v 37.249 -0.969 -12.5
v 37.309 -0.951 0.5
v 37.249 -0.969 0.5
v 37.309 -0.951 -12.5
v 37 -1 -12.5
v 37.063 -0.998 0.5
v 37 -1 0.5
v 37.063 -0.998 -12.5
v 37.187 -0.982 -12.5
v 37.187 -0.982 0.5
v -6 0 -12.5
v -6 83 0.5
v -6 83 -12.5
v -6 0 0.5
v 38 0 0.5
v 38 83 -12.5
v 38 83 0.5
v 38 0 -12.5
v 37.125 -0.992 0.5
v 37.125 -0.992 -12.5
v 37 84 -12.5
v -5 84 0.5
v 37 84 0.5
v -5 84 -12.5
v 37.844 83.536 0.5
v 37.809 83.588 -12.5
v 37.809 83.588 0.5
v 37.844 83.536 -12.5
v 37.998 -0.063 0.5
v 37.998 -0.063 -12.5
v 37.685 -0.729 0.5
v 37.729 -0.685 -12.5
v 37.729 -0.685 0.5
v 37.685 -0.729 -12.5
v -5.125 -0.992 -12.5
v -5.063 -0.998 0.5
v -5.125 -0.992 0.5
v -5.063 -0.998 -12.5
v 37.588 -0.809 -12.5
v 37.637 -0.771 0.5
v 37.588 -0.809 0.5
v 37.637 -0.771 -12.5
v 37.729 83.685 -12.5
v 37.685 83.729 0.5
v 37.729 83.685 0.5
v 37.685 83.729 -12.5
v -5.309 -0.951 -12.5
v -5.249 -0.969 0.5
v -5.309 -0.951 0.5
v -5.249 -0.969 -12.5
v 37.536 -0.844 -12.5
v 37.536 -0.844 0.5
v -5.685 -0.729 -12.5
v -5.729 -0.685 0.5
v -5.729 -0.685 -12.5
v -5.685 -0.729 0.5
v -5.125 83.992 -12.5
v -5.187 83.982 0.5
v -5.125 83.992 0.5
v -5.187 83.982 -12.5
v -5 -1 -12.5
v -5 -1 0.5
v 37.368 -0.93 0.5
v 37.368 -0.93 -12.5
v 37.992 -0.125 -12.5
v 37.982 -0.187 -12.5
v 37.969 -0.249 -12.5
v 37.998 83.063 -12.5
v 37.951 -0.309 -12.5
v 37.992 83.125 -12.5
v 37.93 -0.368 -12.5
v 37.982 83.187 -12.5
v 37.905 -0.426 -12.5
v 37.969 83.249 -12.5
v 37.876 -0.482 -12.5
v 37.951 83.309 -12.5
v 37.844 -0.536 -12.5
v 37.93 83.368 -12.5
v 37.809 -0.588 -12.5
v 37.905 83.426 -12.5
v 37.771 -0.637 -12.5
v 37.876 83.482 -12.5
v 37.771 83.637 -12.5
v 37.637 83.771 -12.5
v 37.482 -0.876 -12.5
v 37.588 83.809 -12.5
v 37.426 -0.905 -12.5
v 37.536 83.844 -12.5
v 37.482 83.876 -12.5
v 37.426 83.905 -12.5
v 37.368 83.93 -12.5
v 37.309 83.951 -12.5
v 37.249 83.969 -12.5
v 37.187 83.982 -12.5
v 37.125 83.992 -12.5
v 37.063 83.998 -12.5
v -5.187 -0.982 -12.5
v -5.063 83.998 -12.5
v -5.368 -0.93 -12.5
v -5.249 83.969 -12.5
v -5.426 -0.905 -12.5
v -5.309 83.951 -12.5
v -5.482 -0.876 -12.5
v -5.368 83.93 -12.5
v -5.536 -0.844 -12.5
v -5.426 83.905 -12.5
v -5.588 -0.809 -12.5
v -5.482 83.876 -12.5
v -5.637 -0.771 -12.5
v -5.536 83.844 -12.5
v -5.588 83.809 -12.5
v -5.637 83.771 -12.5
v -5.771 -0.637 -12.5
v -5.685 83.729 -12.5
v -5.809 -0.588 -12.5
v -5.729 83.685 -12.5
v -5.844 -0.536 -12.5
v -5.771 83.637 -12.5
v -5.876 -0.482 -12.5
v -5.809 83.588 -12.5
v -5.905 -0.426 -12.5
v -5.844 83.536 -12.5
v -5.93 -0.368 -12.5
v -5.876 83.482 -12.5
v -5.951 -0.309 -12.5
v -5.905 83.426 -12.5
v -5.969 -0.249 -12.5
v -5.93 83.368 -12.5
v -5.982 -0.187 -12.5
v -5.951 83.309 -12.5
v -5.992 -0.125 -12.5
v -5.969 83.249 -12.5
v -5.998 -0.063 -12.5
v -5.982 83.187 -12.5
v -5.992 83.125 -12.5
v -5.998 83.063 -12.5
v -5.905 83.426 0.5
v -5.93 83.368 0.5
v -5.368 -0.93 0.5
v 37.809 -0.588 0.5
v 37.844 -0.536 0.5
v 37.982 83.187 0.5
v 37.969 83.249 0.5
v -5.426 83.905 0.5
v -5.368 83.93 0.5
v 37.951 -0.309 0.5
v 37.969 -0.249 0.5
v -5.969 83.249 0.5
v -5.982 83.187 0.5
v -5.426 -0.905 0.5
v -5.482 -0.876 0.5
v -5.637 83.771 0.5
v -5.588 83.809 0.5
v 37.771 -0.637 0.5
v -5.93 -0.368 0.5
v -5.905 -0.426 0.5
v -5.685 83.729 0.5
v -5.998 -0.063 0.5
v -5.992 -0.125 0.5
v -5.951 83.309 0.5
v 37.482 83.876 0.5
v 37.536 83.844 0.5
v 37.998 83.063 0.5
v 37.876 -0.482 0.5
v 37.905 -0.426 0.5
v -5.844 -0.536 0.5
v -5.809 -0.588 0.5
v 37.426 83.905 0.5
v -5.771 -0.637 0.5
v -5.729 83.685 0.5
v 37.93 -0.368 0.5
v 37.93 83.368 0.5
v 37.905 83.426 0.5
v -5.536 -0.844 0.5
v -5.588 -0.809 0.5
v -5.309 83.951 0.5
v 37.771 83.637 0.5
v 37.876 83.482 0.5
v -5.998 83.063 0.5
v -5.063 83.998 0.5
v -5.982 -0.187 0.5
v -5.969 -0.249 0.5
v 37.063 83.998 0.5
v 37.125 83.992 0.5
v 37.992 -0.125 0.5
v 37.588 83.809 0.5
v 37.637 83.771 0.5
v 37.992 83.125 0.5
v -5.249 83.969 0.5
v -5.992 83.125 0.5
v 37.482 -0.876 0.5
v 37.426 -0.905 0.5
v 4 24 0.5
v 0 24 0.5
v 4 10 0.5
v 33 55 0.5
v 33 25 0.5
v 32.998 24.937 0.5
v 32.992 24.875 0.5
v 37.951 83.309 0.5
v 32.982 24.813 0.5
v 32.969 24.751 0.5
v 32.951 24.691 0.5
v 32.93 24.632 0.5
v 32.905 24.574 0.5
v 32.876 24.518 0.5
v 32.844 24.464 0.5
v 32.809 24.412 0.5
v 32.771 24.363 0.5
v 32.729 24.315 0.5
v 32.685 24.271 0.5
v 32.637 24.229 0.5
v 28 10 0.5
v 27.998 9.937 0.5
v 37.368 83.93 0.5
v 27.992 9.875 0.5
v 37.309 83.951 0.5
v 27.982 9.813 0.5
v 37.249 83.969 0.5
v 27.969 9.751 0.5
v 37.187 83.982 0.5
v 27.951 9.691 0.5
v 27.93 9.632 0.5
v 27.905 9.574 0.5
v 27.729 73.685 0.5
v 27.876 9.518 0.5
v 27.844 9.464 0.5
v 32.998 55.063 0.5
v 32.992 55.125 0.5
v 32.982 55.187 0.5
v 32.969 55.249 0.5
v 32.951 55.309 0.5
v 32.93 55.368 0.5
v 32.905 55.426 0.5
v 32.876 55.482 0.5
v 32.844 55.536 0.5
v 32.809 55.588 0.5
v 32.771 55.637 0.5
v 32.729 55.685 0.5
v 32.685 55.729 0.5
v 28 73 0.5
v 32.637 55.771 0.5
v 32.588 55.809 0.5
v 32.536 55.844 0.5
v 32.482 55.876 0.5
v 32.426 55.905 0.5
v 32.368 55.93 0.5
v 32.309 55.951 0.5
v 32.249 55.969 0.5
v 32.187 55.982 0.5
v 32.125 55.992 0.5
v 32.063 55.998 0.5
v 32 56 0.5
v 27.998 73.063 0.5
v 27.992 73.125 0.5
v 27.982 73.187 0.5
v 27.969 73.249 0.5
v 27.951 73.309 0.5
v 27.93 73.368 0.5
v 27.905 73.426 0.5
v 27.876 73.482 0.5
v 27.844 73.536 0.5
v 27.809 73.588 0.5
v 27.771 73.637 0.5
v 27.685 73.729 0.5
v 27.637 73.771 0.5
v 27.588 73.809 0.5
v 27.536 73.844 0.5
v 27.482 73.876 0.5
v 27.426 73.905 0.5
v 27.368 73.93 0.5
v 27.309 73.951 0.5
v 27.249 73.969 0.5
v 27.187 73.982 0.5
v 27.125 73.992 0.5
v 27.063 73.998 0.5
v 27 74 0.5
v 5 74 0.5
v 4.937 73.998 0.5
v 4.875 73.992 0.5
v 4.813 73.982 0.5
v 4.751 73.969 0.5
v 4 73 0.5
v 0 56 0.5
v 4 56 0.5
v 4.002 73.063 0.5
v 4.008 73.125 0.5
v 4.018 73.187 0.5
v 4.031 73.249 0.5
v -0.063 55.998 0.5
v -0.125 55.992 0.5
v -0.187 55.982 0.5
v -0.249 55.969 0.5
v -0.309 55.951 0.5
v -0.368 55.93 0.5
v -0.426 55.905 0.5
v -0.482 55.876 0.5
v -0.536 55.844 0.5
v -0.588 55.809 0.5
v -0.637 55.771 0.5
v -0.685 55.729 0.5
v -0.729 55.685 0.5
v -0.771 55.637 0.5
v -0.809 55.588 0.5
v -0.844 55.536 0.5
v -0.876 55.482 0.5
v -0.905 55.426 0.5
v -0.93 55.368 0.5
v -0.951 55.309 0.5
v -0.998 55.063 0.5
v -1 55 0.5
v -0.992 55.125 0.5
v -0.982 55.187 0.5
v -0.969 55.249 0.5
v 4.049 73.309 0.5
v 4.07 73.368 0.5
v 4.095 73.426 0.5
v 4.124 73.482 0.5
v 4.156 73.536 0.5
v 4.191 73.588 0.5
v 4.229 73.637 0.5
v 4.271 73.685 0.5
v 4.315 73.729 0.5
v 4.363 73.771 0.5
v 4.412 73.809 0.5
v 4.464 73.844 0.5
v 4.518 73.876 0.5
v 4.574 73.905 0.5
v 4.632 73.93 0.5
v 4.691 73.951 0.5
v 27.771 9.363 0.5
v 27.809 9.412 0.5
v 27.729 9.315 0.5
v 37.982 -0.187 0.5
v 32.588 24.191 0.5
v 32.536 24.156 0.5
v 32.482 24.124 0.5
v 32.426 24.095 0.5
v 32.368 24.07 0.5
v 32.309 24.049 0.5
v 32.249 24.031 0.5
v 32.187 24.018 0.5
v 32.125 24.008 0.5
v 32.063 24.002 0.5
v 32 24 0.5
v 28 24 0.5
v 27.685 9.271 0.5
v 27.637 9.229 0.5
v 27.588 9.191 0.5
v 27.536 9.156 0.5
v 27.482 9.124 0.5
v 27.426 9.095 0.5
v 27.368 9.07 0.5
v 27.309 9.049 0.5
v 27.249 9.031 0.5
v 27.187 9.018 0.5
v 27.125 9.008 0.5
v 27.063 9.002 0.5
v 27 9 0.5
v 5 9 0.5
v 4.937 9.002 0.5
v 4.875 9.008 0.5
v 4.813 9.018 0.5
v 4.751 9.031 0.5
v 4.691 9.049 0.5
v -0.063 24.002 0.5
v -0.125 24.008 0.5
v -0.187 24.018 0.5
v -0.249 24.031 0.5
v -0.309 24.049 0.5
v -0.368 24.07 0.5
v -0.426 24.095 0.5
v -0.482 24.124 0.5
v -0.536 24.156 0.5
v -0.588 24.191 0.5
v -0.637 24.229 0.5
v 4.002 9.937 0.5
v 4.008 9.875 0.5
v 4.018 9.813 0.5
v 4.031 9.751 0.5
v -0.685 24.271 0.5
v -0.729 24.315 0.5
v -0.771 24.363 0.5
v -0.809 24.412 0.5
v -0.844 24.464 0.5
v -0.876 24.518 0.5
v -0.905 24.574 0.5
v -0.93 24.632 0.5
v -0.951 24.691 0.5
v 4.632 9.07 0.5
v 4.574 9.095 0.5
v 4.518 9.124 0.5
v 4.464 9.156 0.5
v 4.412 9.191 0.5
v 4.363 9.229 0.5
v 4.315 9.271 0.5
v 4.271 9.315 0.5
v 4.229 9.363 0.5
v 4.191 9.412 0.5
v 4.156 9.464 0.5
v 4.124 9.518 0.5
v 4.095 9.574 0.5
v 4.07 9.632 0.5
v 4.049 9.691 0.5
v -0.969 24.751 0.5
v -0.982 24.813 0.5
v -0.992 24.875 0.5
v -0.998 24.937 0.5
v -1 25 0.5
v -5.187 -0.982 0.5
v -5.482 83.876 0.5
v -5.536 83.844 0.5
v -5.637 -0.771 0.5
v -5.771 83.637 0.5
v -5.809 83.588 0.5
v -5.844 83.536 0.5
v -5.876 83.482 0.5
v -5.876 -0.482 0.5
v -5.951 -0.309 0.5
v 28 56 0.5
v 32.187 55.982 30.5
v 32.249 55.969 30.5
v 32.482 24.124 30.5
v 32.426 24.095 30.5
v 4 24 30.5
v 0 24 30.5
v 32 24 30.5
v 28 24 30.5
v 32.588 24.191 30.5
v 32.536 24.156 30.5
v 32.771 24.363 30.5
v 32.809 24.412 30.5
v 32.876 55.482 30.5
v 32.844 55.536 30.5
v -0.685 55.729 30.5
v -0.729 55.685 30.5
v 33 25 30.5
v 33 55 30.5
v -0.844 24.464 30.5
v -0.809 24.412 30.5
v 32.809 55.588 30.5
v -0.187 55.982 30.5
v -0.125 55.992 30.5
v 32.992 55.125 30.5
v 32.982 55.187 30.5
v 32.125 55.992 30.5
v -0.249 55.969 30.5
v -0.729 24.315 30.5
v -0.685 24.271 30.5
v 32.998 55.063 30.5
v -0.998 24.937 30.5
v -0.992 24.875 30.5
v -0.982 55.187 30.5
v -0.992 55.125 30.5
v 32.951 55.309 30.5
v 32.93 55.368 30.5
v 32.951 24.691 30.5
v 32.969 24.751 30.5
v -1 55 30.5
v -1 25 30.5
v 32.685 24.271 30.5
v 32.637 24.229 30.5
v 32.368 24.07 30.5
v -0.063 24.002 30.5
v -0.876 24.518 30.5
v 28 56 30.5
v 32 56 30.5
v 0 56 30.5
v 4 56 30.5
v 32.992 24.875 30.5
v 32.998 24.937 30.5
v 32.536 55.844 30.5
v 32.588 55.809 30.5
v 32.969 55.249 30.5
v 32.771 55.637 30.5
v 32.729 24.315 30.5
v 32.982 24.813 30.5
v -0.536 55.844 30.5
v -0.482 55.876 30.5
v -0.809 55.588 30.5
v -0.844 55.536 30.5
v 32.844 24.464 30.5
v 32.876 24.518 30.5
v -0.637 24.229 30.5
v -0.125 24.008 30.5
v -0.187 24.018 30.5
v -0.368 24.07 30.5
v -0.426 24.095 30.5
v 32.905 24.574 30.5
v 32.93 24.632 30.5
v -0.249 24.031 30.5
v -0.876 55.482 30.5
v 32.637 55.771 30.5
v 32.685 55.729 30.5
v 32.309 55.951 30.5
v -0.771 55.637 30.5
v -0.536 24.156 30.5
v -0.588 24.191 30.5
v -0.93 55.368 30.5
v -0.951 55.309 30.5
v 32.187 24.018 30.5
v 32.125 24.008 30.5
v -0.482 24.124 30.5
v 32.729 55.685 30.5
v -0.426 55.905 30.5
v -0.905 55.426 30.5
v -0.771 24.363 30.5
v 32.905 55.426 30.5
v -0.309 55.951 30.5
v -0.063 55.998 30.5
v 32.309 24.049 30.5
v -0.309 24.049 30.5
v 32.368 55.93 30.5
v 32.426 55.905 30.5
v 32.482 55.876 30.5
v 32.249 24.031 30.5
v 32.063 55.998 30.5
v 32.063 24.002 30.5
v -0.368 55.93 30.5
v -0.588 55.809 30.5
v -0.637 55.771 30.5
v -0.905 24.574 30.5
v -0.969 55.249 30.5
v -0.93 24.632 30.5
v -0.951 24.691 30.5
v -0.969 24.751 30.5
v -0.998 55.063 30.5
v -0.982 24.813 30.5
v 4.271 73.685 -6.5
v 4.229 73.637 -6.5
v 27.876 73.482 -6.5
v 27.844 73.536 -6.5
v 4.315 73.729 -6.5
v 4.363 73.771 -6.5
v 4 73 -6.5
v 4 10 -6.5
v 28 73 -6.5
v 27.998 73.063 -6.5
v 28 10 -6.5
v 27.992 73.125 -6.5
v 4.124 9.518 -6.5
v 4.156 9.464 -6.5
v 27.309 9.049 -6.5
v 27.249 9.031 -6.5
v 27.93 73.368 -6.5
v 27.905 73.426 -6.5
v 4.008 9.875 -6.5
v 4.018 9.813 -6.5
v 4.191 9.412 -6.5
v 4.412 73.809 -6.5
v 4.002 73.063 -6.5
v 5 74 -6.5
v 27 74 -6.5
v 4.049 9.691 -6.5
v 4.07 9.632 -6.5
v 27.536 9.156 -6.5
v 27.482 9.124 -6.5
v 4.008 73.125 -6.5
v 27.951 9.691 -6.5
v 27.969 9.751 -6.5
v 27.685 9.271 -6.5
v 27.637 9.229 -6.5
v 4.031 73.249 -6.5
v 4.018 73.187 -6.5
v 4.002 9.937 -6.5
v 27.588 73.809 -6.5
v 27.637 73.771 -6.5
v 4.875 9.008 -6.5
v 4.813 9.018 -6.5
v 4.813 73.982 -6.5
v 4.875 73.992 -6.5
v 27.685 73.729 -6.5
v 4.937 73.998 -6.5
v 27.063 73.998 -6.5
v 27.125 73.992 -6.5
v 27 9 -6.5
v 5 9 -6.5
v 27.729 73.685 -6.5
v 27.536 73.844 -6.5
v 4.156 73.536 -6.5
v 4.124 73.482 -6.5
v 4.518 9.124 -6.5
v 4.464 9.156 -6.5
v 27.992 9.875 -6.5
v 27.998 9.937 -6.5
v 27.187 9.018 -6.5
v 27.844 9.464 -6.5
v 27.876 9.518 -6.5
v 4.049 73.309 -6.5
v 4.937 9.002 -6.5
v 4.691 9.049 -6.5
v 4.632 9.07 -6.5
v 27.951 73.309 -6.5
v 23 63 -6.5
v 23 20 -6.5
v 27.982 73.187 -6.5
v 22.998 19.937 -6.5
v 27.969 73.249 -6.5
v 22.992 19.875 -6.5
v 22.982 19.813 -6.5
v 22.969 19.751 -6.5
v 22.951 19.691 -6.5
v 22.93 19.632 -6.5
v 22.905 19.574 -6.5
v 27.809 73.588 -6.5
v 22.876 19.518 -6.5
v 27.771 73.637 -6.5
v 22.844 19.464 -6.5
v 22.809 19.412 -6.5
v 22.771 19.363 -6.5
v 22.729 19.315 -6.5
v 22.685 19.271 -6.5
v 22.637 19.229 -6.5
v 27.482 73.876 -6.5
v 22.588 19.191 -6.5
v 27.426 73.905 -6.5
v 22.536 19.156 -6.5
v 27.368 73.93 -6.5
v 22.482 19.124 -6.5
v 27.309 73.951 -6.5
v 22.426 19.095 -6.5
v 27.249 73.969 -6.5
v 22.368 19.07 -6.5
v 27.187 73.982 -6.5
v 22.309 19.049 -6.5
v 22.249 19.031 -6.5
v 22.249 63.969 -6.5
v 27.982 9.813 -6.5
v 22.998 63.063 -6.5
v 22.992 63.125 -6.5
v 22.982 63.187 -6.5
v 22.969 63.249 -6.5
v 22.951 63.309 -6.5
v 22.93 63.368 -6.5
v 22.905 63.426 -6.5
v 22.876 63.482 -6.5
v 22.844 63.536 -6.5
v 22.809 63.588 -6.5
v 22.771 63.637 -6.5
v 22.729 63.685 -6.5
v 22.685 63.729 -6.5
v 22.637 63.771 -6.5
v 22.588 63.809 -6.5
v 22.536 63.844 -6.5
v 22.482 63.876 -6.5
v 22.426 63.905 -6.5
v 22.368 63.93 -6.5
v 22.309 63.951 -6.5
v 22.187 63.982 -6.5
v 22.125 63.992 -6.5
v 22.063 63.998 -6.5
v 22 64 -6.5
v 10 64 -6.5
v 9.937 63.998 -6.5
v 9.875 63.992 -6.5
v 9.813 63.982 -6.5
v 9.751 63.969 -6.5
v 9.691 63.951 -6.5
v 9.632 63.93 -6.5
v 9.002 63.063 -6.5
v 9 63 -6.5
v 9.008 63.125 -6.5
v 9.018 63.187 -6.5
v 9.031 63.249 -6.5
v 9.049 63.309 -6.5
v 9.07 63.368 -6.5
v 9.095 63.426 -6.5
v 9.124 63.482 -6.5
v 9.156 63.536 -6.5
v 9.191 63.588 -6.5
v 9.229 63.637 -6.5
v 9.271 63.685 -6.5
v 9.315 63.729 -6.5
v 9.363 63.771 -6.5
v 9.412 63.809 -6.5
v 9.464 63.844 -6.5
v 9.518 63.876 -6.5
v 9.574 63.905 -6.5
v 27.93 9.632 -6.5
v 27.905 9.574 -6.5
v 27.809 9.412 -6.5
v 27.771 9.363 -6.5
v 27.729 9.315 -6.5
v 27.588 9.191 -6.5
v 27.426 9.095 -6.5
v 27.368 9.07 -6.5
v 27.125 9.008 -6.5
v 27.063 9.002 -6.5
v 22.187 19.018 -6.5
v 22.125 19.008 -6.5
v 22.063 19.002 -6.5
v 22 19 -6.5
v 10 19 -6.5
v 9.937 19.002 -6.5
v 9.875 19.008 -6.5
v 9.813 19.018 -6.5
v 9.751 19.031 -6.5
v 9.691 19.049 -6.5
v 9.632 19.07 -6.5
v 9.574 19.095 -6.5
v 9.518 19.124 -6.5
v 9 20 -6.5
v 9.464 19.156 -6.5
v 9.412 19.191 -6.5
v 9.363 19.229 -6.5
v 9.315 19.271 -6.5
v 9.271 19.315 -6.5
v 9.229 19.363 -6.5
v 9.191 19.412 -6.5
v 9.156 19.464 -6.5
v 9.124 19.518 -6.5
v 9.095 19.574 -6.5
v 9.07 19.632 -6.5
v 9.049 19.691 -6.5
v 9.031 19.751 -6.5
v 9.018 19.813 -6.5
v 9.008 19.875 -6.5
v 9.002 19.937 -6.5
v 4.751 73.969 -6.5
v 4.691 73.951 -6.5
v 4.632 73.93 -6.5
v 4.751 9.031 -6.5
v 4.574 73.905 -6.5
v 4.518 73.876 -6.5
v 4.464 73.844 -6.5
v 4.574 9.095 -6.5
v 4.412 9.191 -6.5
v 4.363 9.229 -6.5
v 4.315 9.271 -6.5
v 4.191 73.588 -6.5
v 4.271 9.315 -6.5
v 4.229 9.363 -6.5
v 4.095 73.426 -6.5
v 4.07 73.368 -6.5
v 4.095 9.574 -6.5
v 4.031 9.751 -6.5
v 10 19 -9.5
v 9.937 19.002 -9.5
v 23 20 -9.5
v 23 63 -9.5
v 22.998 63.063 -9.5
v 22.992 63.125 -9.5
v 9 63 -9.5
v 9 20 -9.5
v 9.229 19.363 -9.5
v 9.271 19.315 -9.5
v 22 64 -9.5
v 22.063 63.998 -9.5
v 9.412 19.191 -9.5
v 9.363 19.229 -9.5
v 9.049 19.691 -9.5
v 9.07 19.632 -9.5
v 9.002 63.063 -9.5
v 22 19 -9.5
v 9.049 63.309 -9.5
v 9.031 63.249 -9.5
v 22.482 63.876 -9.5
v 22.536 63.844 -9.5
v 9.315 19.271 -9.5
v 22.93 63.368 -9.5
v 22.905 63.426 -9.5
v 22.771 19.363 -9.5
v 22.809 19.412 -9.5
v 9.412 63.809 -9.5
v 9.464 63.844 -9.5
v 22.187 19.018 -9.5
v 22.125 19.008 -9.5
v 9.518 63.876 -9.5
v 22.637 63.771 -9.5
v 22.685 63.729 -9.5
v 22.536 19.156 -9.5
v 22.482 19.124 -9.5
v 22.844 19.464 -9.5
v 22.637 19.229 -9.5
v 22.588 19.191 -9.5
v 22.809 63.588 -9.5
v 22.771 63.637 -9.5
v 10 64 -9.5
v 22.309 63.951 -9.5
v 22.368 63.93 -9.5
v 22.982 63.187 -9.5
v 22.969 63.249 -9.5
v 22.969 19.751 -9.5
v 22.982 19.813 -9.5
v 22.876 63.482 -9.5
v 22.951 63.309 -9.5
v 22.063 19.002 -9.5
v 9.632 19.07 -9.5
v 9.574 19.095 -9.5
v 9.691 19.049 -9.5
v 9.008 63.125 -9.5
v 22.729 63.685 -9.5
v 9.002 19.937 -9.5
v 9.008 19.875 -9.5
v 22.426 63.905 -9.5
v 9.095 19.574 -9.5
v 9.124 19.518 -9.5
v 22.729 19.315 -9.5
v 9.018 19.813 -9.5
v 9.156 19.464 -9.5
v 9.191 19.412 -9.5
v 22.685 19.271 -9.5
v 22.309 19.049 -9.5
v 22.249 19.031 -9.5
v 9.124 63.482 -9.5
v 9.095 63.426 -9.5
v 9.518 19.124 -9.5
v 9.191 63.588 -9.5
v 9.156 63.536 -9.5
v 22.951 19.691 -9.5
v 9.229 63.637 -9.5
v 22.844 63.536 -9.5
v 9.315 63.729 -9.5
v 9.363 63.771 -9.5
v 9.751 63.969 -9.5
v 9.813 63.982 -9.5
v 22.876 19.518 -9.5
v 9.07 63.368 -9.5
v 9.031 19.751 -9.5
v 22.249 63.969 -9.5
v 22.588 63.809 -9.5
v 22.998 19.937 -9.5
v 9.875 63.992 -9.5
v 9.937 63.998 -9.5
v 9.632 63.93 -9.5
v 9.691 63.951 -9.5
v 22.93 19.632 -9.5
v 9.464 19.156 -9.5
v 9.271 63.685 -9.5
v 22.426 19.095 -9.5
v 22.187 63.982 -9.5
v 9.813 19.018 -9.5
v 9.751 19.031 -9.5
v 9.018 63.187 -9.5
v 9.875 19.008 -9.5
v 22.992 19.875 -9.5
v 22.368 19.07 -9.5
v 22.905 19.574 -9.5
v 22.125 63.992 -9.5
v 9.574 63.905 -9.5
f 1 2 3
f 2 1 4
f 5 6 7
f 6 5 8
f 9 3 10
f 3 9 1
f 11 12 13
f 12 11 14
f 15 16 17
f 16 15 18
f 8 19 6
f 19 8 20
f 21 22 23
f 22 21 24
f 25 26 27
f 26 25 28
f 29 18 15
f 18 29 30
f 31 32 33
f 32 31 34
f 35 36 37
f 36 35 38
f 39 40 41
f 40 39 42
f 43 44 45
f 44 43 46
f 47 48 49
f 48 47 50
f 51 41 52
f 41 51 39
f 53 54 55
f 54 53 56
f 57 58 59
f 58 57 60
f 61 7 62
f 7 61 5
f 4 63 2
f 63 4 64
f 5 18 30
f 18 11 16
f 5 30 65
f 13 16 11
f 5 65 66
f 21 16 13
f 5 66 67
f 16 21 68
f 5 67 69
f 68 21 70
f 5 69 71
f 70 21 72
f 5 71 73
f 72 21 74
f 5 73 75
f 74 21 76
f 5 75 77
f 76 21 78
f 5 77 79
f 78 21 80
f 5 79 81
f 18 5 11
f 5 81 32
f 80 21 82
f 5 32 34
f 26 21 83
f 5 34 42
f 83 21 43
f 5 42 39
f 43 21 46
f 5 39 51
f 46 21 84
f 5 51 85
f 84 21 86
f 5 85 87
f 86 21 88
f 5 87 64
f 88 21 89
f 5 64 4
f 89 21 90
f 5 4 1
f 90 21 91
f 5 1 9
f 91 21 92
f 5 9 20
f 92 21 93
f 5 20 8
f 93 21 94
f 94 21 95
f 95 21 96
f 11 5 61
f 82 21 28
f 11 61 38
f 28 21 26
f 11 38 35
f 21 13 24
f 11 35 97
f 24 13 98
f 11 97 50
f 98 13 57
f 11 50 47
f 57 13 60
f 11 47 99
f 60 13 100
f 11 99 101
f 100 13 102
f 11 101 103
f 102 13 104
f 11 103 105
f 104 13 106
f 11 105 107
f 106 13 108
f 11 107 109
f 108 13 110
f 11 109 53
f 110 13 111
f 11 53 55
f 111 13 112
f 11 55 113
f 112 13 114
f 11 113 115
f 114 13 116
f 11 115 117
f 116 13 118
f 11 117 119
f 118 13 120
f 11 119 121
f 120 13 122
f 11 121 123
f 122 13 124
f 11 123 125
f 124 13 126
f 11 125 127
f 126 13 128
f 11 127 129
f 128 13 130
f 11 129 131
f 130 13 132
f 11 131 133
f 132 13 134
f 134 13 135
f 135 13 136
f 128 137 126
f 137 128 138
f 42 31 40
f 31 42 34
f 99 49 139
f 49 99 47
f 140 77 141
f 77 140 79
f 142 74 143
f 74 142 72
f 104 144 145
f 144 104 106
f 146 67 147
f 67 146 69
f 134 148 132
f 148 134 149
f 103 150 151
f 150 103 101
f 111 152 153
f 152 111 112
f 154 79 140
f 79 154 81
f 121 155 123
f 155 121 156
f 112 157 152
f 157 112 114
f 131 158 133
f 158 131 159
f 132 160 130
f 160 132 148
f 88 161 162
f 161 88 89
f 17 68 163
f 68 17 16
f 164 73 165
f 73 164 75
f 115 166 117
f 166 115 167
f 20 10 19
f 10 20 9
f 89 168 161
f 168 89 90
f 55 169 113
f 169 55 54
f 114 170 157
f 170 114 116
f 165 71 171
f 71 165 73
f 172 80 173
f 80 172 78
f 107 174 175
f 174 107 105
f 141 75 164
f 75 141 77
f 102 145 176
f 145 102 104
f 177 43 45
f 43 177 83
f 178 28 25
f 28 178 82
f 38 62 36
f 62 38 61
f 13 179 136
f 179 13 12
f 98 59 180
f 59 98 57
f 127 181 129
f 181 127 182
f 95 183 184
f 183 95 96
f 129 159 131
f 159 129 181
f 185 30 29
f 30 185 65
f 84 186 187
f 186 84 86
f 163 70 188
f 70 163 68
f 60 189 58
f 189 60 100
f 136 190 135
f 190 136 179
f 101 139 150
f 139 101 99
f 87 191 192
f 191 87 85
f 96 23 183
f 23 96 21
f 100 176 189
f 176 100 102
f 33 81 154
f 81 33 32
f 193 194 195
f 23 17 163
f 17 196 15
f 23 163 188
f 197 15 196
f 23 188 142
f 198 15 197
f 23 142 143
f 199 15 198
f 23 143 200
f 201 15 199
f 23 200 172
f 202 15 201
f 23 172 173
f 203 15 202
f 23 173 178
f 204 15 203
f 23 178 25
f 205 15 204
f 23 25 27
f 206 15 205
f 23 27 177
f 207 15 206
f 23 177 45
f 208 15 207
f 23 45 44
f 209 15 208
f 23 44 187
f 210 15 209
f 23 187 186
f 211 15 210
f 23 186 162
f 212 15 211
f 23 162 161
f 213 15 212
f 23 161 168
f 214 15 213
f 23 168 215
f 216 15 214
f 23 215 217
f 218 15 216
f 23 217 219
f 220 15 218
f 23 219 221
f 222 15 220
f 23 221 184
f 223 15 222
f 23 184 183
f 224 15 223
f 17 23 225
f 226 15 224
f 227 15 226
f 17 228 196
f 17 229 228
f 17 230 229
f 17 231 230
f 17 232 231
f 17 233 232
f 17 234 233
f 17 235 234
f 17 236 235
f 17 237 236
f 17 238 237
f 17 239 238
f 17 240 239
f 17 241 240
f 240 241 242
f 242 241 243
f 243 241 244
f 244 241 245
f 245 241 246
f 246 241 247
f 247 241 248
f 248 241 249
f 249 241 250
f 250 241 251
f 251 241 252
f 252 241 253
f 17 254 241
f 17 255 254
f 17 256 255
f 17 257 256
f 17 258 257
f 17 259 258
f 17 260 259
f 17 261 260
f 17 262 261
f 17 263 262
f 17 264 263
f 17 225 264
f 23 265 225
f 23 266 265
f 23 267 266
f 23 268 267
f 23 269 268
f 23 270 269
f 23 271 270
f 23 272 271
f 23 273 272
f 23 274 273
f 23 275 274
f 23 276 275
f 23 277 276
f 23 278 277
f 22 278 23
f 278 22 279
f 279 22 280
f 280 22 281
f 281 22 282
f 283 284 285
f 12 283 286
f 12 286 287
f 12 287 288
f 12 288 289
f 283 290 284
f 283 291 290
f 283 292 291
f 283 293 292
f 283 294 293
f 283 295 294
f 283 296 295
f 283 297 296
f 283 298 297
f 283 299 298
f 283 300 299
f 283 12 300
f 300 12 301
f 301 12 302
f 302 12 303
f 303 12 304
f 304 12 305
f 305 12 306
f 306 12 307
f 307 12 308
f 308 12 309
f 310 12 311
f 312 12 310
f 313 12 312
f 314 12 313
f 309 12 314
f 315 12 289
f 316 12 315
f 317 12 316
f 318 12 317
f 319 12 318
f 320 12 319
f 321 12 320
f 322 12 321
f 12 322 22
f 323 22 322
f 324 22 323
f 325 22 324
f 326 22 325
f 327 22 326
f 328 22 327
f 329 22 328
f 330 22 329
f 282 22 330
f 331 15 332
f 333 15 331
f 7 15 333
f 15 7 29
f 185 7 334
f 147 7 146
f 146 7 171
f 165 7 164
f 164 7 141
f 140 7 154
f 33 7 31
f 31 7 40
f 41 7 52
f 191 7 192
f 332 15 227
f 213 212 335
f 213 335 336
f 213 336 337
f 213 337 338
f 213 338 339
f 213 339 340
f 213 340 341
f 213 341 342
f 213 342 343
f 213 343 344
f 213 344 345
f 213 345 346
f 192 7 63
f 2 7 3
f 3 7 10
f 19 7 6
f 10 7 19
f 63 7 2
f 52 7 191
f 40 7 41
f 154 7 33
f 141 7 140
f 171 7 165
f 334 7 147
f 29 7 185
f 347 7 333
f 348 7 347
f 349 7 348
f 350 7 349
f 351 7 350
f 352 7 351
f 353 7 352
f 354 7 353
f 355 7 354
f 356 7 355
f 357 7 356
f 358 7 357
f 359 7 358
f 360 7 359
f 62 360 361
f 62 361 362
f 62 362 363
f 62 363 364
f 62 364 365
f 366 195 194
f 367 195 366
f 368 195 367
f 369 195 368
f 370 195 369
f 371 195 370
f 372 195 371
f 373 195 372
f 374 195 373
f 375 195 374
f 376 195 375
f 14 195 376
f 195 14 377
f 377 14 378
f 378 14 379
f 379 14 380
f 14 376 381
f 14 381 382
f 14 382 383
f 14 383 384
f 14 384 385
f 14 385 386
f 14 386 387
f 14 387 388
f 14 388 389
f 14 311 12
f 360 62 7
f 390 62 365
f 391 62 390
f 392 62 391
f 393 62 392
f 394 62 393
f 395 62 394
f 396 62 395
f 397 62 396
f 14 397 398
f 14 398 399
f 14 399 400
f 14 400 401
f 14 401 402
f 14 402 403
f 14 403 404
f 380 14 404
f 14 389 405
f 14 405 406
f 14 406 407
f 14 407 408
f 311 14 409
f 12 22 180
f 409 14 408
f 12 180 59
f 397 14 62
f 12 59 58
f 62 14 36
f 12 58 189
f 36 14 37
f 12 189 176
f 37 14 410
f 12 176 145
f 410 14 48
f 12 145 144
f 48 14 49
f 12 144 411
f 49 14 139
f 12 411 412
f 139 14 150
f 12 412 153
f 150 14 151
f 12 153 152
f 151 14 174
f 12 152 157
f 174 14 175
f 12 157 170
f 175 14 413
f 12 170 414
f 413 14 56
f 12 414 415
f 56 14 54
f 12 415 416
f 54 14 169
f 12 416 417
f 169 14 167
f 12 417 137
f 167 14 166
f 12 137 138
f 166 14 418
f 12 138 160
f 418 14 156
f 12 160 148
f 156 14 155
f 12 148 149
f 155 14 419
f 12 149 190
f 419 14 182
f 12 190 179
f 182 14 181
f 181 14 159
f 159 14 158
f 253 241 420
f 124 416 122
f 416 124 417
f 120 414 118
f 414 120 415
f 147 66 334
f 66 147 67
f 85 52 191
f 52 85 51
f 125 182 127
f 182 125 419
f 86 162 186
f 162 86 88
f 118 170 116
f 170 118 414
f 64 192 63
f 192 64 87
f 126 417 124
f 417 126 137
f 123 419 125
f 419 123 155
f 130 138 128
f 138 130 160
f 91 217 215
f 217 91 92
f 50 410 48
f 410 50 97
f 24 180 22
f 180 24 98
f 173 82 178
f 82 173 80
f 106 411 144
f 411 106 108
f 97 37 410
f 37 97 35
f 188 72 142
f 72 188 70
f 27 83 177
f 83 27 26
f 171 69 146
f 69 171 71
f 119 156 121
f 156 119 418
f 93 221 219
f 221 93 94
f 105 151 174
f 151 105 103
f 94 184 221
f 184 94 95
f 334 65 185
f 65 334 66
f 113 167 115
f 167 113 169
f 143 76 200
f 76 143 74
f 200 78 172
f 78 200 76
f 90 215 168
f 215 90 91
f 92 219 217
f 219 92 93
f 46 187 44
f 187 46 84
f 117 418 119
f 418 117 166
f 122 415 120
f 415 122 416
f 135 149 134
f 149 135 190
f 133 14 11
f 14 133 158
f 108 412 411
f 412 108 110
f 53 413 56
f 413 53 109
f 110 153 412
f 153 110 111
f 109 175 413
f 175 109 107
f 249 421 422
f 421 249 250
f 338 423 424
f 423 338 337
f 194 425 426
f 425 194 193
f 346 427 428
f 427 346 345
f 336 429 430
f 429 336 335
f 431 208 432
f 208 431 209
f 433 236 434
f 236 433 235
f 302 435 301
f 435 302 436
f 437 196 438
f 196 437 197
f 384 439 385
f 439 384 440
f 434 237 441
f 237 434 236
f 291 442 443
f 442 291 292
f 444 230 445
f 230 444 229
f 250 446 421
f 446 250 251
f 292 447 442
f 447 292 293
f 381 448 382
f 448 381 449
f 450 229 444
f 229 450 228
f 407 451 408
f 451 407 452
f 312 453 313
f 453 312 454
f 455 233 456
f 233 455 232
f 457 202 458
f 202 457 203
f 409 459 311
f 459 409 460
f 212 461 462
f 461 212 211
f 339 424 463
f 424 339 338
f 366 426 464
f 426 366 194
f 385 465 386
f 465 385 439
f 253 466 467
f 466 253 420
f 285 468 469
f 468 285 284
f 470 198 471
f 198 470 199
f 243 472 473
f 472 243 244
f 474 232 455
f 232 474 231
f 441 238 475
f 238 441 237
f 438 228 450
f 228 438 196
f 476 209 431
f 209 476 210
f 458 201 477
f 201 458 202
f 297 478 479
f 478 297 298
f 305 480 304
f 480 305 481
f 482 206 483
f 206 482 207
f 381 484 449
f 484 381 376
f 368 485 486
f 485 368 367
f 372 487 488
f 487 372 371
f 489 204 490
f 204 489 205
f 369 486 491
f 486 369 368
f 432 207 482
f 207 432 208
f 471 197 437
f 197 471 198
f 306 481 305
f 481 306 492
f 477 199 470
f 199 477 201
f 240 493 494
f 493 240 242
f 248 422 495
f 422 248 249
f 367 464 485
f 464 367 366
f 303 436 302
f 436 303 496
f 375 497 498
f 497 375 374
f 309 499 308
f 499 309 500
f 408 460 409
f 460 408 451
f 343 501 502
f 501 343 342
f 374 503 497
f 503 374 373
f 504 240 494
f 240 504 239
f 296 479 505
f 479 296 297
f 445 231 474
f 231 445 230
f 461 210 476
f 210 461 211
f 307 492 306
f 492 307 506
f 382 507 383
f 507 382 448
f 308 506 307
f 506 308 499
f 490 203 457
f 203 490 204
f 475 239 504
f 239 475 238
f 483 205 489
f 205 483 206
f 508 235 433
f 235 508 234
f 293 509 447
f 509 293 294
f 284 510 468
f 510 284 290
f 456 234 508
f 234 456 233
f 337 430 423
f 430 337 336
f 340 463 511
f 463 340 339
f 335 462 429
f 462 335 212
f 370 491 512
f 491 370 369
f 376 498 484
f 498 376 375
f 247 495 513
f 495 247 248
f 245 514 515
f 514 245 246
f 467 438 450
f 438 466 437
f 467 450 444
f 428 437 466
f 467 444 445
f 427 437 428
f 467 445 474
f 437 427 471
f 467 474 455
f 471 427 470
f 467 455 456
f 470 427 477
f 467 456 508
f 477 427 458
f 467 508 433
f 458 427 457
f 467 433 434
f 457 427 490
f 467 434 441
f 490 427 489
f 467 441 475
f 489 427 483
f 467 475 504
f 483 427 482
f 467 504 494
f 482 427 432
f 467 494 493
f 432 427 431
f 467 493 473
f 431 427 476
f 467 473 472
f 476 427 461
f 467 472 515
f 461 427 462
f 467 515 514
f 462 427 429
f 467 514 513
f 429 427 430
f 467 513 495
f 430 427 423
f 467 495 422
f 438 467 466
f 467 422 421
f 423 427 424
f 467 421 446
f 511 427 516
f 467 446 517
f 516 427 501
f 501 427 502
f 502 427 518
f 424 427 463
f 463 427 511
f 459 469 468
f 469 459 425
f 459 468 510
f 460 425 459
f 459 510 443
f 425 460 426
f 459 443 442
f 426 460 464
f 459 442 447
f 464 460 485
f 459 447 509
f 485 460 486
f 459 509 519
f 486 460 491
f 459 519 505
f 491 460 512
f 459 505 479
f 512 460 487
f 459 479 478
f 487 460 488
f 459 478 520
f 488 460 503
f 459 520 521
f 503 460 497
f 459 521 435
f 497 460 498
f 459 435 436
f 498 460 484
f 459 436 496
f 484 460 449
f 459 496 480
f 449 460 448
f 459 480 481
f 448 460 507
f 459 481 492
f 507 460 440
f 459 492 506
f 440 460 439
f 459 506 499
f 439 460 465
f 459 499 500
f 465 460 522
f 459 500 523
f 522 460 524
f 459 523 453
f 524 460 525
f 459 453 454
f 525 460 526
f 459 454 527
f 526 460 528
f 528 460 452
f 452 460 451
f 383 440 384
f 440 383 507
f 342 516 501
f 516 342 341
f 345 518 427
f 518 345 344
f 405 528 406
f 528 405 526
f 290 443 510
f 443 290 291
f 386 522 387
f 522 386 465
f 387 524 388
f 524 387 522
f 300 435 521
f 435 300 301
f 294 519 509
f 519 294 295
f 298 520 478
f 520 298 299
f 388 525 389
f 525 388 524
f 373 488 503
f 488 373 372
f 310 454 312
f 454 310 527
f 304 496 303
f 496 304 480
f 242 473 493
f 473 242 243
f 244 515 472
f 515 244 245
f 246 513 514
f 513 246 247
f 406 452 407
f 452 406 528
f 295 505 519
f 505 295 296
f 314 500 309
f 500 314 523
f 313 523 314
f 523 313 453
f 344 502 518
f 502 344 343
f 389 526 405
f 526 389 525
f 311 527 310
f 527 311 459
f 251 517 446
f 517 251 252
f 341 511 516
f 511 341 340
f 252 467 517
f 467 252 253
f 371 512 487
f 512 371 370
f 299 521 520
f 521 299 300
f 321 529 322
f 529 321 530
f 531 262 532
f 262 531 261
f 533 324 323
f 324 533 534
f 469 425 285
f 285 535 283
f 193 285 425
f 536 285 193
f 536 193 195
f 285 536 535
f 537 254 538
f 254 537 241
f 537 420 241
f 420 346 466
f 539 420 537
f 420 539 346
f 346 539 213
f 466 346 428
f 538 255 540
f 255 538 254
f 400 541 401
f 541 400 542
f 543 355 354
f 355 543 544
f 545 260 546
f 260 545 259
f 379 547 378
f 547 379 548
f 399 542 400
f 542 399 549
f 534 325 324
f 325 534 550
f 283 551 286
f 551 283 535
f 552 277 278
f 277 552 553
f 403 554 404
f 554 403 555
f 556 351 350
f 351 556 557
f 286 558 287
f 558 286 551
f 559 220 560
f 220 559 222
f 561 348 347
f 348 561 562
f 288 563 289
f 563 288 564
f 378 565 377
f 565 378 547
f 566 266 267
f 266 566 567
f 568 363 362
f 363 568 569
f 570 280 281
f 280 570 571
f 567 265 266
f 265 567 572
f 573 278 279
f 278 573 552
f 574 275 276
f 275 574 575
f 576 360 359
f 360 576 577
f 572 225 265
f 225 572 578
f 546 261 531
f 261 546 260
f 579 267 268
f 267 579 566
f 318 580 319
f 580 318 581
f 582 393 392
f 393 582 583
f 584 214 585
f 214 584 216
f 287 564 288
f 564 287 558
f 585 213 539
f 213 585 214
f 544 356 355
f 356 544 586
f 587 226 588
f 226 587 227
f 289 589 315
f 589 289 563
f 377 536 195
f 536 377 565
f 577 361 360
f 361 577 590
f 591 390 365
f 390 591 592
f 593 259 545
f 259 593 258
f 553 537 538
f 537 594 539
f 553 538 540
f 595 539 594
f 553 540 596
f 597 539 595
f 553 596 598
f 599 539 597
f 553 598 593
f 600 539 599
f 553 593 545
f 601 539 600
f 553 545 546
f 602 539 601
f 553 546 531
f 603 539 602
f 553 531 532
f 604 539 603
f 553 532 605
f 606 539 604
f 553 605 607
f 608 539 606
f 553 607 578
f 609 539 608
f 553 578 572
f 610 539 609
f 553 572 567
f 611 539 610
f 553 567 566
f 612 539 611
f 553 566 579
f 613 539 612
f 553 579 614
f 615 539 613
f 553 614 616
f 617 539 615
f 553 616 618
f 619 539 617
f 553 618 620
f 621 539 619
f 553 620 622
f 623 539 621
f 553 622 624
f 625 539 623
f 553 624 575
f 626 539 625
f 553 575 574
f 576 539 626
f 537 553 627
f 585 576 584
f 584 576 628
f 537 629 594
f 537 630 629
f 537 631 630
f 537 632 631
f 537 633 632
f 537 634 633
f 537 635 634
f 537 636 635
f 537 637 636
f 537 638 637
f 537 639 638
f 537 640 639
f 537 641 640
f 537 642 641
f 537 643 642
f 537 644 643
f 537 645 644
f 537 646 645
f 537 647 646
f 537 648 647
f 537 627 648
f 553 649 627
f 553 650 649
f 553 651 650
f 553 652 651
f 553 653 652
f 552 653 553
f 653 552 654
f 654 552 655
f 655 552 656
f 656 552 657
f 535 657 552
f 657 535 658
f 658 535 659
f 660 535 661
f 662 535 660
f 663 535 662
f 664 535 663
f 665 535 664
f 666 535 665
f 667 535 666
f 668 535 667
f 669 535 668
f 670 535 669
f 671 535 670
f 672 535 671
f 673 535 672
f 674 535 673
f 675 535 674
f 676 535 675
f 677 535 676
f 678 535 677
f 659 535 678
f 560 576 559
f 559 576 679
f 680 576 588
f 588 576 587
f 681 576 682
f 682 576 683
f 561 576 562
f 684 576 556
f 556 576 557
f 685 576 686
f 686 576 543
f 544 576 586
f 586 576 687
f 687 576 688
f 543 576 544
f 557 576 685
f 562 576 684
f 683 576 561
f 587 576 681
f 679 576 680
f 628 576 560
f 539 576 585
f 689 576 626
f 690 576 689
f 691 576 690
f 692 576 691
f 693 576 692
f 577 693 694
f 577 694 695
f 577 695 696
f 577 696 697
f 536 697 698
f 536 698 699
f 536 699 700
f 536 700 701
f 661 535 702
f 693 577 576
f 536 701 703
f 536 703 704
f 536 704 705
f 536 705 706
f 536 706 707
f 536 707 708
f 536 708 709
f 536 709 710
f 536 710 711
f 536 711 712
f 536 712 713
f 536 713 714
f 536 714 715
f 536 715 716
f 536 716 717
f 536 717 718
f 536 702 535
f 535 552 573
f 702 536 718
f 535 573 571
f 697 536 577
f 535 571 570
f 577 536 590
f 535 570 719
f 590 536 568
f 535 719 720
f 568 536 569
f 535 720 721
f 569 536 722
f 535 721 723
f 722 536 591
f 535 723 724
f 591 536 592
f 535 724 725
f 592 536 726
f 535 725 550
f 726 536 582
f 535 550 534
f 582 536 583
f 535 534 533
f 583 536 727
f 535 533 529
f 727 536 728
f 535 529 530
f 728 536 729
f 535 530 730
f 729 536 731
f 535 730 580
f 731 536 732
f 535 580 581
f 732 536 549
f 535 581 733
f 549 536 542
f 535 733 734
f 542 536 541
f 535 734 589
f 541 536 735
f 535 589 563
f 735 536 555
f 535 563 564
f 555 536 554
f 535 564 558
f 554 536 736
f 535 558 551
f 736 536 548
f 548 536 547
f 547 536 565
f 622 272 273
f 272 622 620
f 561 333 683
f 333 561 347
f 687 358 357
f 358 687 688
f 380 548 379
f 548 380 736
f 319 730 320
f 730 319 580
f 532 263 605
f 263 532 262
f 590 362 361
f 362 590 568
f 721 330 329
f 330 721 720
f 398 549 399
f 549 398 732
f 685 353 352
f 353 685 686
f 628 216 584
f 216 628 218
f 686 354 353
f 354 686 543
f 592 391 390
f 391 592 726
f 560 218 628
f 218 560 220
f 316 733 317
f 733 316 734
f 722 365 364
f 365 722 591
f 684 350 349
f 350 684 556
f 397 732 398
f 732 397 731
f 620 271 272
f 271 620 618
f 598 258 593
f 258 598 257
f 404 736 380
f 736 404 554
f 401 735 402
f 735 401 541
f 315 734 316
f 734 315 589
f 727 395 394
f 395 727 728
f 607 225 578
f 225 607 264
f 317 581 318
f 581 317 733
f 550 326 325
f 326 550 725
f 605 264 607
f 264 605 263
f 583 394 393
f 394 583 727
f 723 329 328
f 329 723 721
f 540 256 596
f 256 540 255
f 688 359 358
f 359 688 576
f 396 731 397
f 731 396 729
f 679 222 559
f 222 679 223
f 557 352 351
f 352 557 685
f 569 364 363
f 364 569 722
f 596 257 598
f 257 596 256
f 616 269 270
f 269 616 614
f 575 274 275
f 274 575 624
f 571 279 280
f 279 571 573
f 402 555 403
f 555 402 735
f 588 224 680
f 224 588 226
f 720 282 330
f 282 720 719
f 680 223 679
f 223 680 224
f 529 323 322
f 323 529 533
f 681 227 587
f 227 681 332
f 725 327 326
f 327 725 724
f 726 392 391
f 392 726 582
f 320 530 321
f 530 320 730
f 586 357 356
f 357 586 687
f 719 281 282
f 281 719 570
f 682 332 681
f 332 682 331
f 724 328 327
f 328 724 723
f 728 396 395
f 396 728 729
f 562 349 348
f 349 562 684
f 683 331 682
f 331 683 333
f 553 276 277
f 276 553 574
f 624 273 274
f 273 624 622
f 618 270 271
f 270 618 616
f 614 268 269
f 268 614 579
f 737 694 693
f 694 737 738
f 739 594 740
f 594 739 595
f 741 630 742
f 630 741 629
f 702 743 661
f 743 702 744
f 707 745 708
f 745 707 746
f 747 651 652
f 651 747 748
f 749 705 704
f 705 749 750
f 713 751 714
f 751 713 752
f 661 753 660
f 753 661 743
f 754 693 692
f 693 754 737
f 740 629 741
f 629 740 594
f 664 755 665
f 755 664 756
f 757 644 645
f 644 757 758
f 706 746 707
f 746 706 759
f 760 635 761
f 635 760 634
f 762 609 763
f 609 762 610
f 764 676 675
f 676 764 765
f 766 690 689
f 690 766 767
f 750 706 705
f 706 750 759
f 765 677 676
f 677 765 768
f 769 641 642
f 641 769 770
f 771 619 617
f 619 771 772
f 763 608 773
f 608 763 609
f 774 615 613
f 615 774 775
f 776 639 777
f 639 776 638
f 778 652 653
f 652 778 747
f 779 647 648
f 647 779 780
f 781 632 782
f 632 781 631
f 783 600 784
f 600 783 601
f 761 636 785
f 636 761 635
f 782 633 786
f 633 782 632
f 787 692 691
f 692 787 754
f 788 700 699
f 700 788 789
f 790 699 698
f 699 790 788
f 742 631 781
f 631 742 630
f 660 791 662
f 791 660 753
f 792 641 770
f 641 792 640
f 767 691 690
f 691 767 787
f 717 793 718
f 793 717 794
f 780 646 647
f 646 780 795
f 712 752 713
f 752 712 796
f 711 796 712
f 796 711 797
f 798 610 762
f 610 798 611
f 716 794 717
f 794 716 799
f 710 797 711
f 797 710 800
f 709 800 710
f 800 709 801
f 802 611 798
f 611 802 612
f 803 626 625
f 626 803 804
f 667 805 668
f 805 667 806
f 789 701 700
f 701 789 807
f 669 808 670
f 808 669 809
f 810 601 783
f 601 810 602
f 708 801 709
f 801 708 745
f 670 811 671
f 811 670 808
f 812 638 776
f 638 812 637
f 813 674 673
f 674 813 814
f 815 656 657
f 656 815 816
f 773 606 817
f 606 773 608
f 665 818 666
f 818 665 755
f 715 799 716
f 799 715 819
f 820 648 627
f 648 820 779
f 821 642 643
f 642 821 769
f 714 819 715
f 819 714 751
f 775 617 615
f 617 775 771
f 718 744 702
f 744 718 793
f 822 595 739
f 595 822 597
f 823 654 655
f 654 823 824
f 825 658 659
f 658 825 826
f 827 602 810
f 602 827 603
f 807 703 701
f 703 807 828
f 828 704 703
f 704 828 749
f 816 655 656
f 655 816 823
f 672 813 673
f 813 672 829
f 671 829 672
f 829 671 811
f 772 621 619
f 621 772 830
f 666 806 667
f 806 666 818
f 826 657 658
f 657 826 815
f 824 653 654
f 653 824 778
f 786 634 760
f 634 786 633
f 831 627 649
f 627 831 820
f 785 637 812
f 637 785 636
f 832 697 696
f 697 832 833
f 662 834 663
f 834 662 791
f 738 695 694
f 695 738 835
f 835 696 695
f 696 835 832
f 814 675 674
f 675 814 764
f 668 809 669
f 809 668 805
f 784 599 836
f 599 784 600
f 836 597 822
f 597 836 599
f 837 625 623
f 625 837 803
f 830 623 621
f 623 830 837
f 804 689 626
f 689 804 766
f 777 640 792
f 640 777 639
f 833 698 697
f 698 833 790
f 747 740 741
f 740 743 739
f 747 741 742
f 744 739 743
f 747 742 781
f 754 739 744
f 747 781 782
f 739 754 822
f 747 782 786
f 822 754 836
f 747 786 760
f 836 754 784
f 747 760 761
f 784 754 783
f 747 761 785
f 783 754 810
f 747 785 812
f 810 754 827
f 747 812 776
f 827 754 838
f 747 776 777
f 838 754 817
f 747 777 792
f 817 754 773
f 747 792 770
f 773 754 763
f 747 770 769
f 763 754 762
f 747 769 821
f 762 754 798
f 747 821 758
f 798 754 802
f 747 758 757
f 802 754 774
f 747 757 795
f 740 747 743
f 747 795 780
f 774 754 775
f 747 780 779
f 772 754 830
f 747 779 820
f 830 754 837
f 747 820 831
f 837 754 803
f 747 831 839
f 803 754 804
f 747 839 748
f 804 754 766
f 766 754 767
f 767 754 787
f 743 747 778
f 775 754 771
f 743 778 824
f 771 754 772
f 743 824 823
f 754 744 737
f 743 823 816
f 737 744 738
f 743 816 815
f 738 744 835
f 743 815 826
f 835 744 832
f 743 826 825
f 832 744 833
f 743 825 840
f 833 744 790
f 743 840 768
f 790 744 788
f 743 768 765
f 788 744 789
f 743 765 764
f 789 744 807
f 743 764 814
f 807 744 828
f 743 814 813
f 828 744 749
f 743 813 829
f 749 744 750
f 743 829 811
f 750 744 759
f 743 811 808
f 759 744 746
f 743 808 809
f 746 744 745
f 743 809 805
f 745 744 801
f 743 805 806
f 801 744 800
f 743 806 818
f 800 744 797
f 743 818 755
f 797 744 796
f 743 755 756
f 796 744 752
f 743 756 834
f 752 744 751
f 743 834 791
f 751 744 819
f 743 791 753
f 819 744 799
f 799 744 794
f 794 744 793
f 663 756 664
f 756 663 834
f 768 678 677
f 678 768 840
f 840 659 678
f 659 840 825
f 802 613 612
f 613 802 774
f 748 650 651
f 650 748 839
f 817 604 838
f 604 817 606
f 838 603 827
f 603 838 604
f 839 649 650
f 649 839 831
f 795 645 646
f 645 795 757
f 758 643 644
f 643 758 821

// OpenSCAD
echo(version=version());

$fn=100;

difference() {
  union() {
    translate([-5, 00, -12])
      minkowski(){
        cube( [42,83,12]); 
        cylinder(1, center=true);
      }    
    translate([0, 25, 0])
      minkowski(){    
        cube( [32,30,30]);
        cylinder(1, center=true);
      } 
  }    
  translate([5, 10, -6])
    minkowski(){
      cube( [22,63,100]);
      cylinder(1, center=true);
    }
  translate([10, 20, -9])
    minkowski(){
      cube( [12,43,100]);
      cylinder(1, center=true);
  }
}
